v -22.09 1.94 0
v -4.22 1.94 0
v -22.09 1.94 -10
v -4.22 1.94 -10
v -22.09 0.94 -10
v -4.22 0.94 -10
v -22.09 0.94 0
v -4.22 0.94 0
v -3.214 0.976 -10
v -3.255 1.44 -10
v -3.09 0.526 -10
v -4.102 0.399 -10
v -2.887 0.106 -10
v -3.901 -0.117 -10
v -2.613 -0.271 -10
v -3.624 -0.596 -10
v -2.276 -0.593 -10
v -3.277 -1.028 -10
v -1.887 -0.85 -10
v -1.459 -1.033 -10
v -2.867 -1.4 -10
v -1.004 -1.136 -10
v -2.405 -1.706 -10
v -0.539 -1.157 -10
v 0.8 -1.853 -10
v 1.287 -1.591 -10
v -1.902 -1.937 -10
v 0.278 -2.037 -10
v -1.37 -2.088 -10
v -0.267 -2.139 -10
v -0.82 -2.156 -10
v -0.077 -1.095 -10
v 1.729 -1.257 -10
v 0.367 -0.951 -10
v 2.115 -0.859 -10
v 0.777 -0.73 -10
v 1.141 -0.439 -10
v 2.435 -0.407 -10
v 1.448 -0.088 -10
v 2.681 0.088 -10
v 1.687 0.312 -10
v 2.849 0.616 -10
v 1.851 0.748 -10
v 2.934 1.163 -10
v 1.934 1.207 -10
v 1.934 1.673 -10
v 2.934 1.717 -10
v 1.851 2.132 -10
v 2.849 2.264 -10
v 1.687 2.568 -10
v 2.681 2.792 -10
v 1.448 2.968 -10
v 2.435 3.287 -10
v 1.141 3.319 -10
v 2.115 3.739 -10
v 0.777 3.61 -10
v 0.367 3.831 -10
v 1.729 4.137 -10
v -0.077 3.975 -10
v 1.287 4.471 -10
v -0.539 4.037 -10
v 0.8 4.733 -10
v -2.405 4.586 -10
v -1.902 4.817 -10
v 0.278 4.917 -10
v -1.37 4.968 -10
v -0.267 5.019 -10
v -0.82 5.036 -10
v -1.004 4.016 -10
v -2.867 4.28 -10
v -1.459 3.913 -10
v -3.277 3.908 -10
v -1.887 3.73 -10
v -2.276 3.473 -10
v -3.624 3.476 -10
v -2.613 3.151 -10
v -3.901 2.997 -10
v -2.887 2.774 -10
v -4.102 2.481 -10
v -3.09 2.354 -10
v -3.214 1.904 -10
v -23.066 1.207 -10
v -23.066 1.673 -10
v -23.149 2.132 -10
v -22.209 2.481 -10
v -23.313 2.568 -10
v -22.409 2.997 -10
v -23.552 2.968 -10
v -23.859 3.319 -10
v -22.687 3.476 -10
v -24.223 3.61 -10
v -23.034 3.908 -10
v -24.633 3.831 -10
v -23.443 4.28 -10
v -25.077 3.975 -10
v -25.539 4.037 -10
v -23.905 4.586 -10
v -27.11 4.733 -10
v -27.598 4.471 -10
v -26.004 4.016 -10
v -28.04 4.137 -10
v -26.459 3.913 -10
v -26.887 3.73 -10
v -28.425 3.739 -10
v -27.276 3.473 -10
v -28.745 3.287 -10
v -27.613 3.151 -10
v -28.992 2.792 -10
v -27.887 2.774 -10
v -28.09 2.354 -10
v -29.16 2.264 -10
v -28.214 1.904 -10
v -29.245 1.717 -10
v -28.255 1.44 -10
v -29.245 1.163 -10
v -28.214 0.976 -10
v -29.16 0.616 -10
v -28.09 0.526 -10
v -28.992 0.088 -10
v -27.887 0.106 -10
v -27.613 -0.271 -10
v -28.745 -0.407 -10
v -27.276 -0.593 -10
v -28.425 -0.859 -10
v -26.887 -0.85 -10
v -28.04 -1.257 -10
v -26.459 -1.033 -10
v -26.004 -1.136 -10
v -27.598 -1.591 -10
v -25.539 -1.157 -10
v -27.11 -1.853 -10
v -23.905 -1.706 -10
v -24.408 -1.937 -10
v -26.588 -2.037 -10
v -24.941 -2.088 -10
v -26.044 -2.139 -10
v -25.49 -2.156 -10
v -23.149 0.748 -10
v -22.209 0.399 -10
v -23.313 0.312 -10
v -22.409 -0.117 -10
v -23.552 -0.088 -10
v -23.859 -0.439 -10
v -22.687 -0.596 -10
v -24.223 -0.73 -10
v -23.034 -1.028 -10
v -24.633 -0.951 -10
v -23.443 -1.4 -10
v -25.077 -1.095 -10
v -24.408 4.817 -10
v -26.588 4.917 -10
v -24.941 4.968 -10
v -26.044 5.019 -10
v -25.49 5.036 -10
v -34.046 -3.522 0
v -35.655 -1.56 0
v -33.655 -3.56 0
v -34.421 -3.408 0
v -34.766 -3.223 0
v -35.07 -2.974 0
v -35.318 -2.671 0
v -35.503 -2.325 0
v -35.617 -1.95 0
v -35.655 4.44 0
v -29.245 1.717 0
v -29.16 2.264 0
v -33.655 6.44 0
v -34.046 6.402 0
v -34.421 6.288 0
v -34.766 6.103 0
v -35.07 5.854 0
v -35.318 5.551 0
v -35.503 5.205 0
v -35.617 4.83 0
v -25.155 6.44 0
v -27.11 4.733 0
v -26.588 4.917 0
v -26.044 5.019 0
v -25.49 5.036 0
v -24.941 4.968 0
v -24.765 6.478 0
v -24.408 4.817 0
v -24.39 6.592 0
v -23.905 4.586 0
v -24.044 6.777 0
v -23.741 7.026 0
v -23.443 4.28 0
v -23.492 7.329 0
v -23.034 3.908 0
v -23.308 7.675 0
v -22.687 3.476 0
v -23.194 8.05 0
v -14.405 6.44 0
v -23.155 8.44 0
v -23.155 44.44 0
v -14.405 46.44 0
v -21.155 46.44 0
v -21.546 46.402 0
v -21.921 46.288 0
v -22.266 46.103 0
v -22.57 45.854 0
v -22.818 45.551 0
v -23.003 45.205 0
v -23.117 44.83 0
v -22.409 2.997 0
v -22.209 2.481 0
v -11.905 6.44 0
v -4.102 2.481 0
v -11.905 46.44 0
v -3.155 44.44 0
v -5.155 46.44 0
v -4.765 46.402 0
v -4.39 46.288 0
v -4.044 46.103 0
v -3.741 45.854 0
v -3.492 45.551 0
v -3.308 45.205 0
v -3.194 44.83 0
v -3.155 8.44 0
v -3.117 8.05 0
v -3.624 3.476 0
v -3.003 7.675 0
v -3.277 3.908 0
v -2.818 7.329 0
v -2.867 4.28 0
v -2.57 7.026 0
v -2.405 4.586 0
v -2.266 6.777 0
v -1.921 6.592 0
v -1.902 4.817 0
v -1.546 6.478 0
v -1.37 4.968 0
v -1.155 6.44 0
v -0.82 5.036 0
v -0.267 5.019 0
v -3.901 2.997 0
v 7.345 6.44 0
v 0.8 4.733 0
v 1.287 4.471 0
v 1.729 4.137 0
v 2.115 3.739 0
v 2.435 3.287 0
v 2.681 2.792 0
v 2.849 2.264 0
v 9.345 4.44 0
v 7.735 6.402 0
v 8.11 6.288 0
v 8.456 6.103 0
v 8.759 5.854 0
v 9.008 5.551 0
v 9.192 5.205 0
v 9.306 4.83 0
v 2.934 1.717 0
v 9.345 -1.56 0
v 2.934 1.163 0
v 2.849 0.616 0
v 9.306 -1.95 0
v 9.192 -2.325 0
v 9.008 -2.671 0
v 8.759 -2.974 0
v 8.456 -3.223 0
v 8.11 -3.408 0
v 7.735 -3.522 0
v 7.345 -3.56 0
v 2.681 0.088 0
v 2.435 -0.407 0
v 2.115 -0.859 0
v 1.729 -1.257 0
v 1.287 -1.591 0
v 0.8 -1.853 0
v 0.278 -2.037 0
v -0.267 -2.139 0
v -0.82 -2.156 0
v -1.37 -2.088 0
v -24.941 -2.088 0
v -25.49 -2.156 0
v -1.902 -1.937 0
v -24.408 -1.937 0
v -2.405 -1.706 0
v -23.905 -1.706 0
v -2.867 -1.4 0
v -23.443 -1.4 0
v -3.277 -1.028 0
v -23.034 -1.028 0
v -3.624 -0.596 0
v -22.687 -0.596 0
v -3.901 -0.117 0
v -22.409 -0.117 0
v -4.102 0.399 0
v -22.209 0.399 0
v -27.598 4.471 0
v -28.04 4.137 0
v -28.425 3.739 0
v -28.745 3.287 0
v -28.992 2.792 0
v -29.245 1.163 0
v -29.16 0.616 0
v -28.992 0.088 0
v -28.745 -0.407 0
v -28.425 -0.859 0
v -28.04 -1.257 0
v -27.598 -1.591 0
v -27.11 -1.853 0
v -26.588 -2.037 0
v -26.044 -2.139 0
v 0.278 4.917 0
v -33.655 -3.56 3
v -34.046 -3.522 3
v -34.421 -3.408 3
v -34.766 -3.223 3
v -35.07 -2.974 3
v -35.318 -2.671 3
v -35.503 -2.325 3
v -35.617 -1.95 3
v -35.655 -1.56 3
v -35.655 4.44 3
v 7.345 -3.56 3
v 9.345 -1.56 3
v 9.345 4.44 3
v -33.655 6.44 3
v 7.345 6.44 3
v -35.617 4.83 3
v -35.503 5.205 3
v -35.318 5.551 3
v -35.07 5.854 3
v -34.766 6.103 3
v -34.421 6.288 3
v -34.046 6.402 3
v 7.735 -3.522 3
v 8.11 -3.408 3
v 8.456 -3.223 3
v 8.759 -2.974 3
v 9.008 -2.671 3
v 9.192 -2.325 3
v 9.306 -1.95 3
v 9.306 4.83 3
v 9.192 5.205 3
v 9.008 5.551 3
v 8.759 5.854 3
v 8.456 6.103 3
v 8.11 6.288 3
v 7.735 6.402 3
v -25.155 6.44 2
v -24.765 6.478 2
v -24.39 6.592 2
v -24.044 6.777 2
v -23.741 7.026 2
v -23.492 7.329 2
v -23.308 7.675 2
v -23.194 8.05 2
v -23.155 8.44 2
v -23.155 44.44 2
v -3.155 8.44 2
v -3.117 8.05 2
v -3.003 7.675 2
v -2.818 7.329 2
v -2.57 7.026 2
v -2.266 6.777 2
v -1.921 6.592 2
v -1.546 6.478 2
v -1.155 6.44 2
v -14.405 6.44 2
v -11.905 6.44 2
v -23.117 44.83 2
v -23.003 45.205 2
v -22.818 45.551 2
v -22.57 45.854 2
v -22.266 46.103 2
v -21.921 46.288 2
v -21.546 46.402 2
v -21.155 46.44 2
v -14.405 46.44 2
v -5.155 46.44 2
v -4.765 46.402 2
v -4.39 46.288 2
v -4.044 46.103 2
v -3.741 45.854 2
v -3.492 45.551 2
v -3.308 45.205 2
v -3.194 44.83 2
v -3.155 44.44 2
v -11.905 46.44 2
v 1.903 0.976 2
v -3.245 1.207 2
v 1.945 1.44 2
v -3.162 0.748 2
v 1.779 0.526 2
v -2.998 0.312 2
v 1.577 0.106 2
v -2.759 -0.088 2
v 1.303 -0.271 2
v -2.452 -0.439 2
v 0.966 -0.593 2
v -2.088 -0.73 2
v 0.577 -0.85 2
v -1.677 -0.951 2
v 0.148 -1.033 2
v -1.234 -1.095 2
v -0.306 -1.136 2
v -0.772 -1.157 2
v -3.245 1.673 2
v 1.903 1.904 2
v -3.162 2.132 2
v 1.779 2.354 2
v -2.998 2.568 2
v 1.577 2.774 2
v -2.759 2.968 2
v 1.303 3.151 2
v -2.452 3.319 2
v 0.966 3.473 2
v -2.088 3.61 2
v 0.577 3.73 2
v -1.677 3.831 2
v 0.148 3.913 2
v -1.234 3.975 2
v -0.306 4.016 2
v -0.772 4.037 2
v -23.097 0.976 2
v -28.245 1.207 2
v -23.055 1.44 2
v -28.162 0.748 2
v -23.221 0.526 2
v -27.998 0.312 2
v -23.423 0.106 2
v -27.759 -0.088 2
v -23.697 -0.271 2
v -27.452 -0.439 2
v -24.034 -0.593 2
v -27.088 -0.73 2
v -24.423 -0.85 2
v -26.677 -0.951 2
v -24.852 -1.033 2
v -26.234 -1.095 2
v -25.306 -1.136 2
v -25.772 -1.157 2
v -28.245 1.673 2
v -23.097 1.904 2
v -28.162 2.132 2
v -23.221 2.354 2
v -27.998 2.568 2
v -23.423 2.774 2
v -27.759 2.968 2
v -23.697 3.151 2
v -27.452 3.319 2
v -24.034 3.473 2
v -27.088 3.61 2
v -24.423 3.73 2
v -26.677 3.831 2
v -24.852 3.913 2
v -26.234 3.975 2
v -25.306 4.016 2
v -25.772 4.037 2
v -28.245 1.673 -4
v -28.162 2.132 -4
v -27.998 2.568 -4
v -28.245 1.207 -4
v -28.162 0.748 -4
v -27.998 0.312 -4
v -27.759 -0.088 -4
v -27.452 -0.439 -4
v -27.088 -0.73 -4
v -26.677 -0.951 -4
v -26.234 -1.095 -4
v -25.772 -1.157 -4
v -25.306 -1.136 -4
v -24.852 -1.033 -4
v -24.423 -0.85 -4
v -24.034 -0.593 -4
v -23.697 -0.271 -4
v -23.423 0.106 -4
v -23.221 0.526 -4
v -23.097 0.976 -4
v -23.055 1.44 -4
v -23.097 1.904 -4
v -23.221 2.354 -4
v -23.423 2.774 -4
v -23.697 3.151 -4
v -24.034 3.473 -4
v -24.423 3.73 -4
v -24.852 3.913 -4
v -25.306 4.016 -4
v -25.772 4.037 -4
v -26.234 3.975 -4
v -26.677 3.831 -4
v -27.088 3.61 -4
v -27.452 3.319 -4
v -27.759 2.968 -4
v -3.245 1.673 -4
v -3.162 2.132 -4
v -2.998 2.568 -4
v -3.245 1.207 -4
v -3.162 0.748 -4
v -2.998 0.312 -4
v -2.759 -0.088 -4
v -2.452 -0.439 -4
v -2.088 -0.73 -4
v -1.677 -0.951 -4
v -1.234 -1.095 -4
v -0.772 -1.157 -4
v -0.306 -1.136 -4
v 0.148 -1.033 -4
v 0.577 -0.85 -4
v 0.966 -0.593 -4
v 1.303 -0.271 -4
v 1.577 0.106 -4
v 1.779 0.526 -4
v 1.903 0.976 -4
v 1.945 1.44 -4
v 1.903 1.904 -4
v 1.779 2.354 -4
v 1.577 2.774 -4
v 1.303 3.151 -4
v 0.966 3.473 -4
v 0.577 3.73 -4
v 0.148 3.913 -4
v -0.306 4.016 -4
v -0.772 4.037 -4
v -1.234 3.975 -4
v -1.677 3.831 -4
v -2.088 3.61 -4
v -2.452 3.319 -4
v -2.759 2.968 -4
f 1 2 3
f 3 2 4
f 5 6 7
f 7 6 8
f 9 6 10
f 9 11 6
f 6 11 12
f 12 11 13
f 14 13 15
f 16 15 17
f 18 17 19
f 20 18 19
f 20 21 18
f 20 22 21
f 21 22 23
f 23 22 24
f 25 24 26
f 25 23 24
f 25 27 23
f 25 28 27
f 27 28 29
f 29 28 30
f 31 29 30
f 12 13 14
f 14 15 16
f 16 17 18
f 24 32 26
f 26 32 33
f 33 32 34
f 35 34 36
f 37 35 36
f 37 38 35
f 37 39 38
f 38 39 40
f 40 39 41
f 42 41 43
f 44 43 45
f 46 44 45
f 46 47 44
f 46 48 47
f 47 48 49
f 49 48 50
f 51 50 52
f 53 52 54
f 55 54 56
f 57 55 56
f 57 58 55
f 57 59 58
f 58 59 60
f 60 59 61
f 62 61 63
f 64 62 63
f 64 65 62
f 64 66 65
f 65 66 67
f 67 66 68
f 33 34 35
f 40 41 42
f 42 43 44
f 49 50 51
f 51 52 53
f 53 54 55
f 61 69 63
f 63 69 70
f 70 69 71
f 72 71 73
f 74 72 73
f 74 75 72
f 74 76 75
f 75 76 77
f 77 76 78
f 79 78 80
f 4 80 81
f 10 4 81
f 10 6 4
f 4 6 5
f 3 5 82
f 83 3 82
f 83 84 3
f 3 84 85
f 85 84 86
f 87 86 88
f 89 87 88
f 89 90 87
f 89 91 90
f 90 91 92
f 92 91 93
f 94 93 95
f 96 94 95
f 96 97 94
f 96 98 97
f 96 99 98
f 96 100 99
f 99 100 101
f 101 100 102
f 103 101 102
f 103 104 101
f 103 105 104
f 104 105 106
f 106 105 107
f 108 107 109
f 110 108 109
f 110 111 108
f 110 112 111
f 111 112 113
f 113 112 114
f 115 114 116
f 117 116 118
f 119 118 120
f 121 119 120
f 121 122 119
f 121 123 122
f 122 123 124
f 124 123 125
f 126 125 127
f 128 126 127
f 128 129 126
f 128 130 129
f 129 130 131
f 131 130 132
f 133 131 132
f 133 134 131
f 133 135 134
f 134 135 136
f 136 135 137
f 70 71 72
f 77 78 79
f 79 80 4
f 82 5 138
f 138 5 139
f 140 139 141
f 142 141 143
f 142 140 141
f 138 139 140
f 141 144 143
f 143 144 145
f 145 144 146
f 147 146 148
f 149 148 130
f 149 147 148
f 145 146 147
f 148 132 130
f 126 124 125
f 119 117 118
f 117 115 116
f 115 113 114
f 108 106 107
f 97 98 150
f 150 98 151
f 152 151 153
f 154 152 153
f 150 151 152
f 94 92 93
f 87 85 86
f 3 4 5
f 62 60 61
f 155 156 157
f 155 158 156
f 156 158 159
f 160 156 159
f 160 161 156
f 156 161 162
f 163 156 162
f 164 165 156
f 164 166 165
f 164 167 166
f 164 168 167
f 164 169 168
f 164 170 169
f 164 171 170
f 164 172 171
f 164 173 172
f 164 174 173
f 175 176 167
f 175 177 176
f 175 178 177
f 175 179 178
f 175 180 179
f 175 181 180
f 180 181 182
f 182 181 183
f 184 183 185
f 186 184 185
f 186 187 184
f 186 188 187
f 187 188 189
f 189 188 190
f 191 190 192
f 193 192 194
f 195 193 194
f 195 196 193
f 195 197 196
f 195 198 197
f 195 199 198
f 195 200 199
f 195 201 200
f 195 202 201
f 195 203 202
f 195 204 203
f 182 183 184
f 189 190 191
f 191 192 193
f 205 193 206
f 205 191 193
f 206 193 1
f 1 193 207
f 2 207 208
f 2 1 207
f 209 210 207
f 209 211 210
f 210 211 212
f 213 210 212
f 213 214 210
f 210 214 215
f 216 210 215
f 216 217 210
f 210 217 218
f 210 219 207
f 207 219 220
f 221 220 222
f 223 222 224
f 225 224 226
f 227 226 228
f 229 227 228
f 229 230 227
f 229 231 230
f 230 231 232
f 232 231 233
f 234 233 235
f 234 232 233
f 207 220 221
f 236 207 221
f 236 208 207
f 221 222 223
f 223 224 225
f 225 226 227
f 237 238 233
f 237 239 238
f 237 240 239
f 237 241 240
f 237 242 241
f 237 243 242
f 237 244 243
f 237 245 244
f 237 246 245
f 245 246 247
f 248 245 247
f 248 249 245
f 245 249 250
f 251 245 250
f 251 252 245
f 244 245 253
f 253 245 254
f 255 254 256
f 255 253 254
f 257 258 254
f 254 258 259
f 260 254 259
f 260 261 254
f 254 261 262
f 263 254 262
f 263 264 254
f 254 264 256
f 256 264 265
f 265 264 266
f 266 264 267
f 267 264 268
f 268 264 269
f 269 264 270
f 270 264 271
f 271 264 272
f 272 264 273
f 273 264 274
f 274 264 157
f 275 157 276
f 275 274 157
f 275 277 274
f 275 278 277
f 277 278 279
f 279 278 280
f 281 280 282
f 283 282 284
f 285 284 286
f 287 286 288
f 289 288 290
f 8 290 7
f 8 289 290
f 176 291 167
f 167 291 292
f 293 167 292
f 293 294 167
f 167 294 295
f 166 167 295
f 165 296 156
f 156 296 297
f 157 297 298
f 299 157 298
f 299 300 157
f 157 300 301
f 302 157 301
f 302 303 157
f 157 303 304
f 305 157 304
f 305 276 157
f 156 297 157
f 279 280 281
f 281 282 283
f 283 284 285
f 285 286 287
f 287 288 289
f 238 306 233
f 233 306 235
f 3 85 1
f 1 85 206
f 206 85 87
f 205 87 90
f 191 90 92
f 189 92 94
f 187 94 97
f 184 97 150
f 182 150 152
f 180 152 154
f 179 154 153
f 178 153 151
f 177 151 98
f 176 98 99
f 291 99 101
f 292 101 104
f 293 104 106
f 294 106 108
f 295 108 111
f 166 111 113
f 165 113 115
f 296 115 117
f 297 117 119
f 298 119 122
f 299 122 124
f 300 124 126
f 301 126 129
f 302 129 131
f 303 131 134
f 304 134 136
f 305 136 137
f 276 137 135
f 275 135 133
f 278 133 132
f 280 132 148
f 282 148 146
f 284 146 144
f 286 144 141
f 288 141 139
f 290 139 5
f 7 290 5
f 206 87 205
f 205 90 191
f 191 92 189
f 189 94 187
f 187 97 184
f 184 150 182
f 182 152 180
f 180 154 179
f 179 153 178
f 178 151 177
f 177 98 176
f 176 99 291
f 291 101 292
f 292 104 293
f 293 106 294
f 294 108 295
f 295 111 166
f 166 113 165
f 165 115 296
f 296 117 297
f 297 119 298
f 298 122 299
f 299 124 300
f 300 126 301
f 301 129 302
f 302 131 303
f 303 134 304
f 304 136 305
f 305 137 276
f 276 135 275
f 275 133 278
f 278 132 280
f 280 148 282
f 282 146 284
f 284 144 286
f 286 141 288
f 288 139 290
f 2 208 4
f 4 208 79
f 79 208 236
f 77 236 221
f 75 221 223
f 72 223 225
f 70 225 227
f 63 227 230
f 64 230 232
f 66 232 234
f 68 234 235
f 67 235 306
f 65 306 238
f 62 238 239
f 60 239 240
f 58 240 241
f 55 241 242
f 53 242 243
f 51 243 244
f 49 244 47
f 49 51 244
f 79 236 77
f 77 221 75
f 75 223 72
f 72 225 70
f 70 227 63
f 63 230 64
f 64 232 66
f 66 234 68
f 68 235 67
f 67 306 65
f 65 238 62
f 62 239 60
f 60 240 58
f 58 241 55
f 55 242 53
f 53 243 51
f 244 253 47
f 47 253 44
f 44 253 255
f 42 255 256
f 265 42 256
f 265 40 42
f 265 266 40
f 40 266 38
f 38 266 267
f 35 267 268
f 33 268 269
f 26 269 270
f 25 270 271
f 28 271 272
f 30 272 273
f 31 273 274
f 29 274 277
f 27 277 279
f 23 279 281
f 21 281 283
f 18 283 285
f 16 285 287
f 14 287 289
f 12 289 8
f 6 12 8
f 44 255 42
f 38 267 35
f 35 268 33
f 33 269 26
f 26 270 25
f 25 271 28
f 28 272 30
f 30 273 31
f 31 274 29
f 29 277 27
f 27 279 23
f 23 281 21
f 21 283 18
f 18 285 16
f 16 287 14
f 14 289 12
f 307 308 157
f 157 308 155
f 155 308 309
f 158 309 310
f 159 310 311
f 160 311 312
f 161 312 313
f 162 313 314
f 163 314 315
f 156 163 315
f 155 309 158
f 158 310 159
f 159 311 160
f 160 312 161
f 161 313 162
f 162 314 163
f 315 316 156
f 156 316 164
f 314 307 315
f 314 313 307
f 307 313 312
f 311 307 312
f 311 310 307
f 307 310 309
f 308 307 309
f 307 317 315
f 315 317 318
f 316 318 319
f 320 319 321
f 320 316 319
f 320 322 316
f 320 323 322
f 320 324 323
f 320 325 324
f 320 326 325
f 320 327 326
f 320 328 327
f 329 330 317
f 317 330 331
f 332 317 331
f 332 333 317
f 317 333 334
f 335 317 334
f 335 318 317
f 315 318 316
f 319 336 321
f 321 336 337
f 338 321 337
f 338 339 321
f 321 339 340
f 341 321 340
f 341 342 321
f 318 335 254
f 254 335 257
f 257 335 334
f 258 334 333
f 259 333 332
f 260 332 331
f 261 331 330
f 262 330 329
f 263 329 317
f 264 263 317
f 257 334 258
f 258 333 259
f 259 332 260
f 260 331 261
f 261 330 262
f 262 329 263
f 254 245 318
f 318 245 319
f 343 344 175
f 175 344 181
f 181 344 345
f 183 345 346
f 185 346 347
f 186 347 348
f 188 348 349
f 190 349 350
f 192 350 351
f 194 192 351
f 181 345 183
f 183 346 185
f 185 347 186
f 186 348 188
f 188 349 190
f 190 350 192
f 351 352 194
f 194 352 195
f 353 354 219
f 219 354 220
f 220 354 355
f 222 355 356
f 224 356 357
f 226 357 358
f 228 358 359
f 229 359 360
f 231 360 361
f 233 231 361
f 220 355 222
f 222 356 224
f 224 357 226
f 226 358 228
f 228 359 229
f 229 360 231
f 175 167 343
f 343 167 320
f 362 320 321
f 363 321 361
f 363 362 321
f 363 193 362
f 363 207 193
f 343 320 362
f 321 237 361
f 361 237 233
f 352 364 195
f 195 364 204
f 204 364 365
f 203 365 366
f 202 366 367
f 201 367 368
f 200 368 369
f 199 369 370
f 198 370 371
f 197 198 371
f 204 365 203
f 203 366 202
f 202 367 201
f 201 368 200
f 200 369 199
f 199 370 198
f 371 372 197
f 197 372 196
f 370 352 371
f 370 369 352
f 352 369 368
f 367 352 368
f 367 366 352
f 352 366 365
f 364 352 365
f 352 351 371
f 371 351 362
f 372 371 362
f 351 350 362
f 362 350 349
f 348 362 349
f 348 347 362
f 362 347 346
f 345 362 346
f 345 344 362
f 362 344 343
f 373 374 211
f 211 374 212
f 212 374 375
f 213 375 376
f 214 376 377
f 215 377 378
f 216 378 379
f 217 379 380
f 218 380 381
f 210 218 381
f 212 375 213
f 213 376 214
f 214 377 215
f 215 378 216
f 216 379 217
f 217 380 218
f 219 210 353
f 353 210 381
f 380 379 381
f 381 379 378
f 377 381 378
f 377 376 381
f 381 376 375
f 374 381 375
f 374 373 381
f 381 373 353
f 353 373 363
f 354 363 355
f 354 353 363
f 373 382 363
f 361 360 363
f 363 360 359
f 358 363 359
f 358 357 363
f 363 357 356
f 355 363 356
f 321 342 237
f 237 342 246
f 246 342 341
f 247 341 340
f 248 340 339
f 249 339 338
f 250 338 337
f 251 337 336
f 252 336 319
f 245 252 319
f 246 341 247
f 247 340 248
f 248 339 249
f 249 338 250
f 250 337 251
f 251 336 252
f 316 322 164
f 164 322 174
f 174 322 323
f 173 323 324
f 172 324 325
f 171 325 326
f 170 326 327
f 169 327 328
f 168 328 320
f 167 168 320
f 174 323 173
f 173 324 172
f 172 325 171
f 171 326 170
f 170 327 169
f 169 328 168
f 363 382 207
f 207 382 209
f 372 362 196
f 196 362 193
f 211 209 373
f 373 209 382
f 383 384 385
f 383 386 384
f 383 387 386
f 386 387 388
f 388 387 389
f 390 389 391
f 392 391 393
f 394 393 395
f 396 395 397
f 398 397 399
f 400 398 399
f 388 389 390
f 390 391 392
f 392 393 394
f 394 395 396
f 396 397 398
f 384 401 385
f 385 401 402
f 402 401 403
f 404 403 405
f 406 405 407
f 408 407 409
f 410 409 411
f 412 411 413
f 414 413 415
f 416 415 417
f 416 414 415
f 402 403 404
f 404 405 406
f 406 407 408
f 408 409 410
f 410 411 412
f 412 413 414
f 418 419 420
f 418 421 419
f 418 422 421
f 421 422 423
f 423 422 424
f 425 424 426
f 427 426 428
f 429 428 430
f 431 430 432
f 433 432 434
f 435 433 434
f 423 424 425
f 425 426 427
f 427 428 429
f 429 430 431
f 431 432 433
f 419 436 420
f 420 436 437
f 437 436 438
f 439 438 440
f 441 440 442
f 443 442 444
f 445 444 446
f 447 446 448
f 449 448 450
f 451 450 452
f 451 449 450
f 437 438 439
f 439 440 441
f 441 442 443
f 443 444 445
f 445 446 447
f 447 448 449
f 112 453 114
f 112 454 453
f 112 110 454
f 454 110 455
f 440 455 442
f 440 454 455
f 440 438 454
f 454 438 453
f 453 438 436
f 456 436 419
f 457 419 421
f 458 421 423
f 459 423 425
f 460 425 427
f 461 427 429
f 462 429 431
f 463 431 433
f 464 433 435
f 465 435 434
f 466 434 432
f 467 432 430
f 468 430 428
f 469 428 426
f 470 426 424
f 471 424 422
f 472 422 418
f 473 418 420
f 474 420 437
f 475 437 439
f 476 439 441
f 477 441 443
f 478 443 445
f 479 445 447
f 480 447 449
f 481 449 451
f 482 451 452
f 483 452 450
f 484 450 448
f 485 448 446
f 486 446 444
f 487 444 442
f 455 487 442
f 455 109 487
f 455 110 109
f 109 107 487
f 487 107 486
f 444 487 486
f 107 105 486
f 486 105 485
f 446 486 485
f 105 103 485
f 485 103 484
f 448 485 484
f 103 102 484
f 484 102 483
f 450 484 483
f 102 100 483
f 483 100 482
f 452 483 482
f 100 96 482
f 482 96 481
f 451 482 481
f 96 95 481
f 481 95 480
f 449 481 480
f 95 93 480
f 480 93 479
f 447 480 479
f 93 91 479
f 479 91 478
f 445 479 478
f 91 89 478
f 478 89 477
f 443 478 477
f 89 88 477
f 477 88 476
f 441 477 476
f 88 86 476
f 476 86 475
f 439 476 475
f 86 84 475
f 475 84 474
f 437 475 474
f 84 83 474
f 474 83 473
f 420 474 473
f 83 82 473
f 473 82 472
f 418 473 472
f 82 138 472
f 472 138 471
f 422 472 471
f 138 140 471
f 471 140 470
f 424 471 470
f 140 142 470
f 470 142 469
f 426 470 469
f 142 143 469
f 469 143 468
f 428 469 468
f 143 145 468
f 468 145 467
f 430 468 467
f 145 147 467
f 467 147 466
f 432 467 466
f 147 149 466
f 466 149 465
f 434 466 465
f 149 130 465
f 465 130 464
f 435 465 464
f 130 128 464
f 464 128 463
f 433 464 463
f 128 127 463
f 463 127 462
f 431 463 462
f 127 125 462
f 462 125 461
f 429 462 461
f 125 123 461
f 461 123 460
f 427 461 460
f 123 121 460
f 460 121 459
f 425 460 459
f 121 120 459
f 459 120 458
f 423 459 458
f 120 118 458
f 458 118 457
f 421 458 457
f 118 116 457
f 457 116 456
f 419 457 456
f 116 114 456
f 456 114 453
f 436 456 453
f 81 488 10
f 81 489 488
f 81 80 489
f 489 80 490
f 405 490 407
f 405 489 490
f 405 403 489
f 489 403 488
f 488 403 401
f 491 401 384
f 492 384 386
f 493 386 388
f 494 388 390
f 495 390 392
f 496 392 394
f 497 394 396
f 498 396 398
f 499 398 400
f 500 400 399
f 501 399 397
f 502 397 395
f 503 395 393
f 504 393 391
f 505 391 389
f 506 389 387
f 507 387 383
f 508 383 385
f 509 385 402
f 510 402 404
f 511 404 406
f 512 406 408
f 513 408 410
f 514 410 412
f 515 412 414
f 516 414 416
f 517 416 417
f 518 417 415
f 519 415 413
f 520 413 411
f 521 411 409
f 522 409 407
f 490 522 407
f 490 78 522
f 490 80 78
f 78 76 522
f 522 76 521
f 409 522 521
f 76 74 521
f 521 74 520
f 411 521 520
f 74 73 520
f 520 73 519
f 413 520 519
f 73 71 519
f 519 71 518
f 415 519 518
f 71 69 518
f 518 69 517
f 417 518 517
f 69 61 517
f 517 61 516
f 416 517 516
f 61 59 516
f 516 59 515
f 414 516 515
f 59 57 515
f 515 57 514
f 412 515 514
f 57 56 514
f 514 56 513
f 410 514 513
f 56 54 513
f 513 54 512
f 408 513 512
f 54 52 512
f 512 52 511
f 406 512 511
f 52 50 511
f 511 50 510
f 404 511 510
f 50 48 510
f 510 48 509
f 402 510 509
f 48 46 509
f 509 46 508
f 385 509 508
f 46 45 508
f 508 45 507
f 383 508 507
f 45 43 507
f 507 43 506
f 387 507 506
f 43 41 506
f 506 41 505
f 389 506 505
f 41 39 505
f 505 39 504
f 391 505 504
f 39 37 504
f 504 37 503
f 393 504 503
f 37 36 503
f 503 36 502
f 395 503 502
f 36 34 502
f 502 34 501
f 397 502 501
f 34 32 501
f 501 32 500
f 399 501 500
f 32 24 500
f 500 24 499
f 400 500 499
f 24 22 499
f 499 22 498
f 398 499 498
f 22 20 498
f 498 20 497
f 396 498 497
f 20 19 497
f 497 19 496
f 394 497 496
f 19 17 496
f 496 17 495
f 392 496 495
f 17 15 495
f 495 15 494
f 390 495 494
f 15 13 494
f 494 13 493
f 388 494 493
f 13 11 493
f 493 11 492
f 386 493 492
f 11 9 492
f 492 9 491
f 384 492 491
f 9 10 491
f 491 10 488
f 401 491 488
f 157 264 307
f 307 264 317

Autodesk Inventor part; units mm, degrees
ref_plane "YZ Plane" through (0, 0, 0) normal (1, 0, 0) x (0, 1, 0)
ref_plane "XZ Plane" through (0, 0, 0) normal (0, 1, 0) x (-1, 0, 0)
ref_plane "XY Plane" through (0, 0, 0) normal (0, 0, 1) x (1, 0, 0)
sketch "Sketch1" plane through (0, 0, 0) normal (0, 0, 1) x (1, 0, 0)
  line L0 (-35.6553, 6.44) -> (9.3447, 6.44)
  line L1 (9.3447, 6.44) -> (9.3447, -3.56)
  line L2 (9.3447, -3.56) -> (-35.6553, -3.56)
  line L3 (-35.6553, -3.56) -> (-35.6553, 6.44)
  line L4 (-23.1553, 6.44) -> (-3.1553, 6.44)
  line L5 (-3.1553, 6.44) -> (-3.1553, 46.44)
  line L6 (-3.1553, 46.44) -> (-23.1553, 46.44)
  line L7 (-23.1553, 46.44) -> (-23.1553, 6.44)
  point P0 (0, 0)
  dimension "d0" = 20
  dimension "d1" = 10
  dimension "d2" = 40
  dimension "d3" = 12.5
  dimension "d4" = 12.5
  dimension "d5" = 45
extrude "Extrusion1" add sketch "Sketch1" along normal blind 2
sketch "Sketch2" plane through (0, 0, 2) normal (0, 0, 1) x (1, 0, 0)
  circle A0 centre (-25.6553, 1.44) radius 2.6
  circle A1 centre (-0.6553, 1.44) radius 2.6
  line L0 (9.3447, -3.56) -> (9.3447, 6.44) projected
  line L1 (-35.6553, -3.56) -> (9.3447, -3.56) projected
  point P0 (0, 0)
  dimension "d8" = 5.2
  dimension "d9" = 10
  dimension "d10" = 25
  dimension "d11" = 5.2
  dimension "d12" = 5
  dimension "d13" = 5
extrude "Extrusion2" cut sketch "Sketch2" against normal blind 2
sketch "Sketch3" plane through (0, 0, 2) normal (0, 0, 1) x (1, 0, 0)
  line L0 (-35.6553, -3.56) -> (9.3447, -3.56)
  line L1 (9.3447, -3.56) -> (9.3447, 6.44)
  line L2 (9.3447, 6.44) -> (-35.6553, 6.44)
  line L3 (-35.6553, 6.44) -> (-35.6553, -3.56)
  point P0 (0, 0)
extrude "Extrusion3" add sketch "Sketch3" along normal blind 1
sketch "Sketch4" plane through (0, 0, 2) normal (0, 0, 1) x (1, 0, 0)
  line L0 (-23.1553, 6.44) -> (-3.1553, 6.44) projected
  line L1 (-14.4053, 6.44) -> (-11.9053, 6.44)
  line L2 (-11.9053, 6.44) -> (-11.9053, 46.44)
  line L3 (-11.9053, 46.44) -> (-14.4053, 46.44)
  line L4 (-14.4053, 46.44) -> (-14.4053, 6.44)
  line L5 (-23.1553, 46.44) -> (-23.1553, 6.44) projected
  line L6 (-3.1553, 6.44) -> (-3.1553, 46.44) projected
  point P0 (0, 0)
  dimension "d18" = 2.5
  dimension "d19" = 40
  dimension "d20" = 8.75
  dimension "d21" = 8.75
extrude "Extrusion4" cut sketch "Sketch4" against normal blind 2
fillet "Fillet1" radius 2 6 edges at (-35.6553, 6.44, 1.5) (9.3447, 6.44, 1.5) (-3.1553, 46.44, 1) (-23.1553, 46.44, 1) (-3.1553, 6.44, 1) (-23.1553, 6.44, 1)
fillet "Fillet2" radius 2 2 edges at (9.3447, -3.56, 1.5) (-35.6553, -3.56, 1.5)
sketch "Sketch5" plane through (0, 0, 0) normal (0, 0, -1) x (-1, 0, 0)
  circle A0 centre (0.6553, 1.44) radius 2.6 projected
  circle A1 centre (0.6553, 1.44) radius 2.6
  circle A2 centre (25.6553, 1.44) radius 2.6 projected
  circle A3 centre (25.6553, 1.44) radius 2.6
  circle A4 centre (25.6553, 1.44) radius 3.6
  circle A5 centre (0.6553, 1.44) radius 3.6
  point P0 (0, 0)
  dimension "d26" = 7.2
  dimension "d27" = 7.2
extrude "Extrusion5" add sketch "Sketch5" along normal blind 10
sketch "Sketch6" plane through (0, 0, 0) normal (0, 0, -1) x (-1, 0, 0)
  line L0 (3.6821, 0.94) -> (22.6767, 0.94)
  line L1 (22.6767, 0.94) -> (22.6767, 1.94)
  line L2 (22.6767, 1.94) -> (3.6821, 1.94)
  line L3 (3.6821, 1.94) -> (3.6821, 0.94)
  circle A0 centre (0.6553, 1.44) radius 2.6 projected
  point P0 (0, 0)
  dimension "d30" = 0.5
  dimension "d31" = 0.5
extrude "Extrusion6" add sketch "Sketch6" along normal blind 10 contours L3 L2 L1 L0
properties part number "Top Tube Holder"
